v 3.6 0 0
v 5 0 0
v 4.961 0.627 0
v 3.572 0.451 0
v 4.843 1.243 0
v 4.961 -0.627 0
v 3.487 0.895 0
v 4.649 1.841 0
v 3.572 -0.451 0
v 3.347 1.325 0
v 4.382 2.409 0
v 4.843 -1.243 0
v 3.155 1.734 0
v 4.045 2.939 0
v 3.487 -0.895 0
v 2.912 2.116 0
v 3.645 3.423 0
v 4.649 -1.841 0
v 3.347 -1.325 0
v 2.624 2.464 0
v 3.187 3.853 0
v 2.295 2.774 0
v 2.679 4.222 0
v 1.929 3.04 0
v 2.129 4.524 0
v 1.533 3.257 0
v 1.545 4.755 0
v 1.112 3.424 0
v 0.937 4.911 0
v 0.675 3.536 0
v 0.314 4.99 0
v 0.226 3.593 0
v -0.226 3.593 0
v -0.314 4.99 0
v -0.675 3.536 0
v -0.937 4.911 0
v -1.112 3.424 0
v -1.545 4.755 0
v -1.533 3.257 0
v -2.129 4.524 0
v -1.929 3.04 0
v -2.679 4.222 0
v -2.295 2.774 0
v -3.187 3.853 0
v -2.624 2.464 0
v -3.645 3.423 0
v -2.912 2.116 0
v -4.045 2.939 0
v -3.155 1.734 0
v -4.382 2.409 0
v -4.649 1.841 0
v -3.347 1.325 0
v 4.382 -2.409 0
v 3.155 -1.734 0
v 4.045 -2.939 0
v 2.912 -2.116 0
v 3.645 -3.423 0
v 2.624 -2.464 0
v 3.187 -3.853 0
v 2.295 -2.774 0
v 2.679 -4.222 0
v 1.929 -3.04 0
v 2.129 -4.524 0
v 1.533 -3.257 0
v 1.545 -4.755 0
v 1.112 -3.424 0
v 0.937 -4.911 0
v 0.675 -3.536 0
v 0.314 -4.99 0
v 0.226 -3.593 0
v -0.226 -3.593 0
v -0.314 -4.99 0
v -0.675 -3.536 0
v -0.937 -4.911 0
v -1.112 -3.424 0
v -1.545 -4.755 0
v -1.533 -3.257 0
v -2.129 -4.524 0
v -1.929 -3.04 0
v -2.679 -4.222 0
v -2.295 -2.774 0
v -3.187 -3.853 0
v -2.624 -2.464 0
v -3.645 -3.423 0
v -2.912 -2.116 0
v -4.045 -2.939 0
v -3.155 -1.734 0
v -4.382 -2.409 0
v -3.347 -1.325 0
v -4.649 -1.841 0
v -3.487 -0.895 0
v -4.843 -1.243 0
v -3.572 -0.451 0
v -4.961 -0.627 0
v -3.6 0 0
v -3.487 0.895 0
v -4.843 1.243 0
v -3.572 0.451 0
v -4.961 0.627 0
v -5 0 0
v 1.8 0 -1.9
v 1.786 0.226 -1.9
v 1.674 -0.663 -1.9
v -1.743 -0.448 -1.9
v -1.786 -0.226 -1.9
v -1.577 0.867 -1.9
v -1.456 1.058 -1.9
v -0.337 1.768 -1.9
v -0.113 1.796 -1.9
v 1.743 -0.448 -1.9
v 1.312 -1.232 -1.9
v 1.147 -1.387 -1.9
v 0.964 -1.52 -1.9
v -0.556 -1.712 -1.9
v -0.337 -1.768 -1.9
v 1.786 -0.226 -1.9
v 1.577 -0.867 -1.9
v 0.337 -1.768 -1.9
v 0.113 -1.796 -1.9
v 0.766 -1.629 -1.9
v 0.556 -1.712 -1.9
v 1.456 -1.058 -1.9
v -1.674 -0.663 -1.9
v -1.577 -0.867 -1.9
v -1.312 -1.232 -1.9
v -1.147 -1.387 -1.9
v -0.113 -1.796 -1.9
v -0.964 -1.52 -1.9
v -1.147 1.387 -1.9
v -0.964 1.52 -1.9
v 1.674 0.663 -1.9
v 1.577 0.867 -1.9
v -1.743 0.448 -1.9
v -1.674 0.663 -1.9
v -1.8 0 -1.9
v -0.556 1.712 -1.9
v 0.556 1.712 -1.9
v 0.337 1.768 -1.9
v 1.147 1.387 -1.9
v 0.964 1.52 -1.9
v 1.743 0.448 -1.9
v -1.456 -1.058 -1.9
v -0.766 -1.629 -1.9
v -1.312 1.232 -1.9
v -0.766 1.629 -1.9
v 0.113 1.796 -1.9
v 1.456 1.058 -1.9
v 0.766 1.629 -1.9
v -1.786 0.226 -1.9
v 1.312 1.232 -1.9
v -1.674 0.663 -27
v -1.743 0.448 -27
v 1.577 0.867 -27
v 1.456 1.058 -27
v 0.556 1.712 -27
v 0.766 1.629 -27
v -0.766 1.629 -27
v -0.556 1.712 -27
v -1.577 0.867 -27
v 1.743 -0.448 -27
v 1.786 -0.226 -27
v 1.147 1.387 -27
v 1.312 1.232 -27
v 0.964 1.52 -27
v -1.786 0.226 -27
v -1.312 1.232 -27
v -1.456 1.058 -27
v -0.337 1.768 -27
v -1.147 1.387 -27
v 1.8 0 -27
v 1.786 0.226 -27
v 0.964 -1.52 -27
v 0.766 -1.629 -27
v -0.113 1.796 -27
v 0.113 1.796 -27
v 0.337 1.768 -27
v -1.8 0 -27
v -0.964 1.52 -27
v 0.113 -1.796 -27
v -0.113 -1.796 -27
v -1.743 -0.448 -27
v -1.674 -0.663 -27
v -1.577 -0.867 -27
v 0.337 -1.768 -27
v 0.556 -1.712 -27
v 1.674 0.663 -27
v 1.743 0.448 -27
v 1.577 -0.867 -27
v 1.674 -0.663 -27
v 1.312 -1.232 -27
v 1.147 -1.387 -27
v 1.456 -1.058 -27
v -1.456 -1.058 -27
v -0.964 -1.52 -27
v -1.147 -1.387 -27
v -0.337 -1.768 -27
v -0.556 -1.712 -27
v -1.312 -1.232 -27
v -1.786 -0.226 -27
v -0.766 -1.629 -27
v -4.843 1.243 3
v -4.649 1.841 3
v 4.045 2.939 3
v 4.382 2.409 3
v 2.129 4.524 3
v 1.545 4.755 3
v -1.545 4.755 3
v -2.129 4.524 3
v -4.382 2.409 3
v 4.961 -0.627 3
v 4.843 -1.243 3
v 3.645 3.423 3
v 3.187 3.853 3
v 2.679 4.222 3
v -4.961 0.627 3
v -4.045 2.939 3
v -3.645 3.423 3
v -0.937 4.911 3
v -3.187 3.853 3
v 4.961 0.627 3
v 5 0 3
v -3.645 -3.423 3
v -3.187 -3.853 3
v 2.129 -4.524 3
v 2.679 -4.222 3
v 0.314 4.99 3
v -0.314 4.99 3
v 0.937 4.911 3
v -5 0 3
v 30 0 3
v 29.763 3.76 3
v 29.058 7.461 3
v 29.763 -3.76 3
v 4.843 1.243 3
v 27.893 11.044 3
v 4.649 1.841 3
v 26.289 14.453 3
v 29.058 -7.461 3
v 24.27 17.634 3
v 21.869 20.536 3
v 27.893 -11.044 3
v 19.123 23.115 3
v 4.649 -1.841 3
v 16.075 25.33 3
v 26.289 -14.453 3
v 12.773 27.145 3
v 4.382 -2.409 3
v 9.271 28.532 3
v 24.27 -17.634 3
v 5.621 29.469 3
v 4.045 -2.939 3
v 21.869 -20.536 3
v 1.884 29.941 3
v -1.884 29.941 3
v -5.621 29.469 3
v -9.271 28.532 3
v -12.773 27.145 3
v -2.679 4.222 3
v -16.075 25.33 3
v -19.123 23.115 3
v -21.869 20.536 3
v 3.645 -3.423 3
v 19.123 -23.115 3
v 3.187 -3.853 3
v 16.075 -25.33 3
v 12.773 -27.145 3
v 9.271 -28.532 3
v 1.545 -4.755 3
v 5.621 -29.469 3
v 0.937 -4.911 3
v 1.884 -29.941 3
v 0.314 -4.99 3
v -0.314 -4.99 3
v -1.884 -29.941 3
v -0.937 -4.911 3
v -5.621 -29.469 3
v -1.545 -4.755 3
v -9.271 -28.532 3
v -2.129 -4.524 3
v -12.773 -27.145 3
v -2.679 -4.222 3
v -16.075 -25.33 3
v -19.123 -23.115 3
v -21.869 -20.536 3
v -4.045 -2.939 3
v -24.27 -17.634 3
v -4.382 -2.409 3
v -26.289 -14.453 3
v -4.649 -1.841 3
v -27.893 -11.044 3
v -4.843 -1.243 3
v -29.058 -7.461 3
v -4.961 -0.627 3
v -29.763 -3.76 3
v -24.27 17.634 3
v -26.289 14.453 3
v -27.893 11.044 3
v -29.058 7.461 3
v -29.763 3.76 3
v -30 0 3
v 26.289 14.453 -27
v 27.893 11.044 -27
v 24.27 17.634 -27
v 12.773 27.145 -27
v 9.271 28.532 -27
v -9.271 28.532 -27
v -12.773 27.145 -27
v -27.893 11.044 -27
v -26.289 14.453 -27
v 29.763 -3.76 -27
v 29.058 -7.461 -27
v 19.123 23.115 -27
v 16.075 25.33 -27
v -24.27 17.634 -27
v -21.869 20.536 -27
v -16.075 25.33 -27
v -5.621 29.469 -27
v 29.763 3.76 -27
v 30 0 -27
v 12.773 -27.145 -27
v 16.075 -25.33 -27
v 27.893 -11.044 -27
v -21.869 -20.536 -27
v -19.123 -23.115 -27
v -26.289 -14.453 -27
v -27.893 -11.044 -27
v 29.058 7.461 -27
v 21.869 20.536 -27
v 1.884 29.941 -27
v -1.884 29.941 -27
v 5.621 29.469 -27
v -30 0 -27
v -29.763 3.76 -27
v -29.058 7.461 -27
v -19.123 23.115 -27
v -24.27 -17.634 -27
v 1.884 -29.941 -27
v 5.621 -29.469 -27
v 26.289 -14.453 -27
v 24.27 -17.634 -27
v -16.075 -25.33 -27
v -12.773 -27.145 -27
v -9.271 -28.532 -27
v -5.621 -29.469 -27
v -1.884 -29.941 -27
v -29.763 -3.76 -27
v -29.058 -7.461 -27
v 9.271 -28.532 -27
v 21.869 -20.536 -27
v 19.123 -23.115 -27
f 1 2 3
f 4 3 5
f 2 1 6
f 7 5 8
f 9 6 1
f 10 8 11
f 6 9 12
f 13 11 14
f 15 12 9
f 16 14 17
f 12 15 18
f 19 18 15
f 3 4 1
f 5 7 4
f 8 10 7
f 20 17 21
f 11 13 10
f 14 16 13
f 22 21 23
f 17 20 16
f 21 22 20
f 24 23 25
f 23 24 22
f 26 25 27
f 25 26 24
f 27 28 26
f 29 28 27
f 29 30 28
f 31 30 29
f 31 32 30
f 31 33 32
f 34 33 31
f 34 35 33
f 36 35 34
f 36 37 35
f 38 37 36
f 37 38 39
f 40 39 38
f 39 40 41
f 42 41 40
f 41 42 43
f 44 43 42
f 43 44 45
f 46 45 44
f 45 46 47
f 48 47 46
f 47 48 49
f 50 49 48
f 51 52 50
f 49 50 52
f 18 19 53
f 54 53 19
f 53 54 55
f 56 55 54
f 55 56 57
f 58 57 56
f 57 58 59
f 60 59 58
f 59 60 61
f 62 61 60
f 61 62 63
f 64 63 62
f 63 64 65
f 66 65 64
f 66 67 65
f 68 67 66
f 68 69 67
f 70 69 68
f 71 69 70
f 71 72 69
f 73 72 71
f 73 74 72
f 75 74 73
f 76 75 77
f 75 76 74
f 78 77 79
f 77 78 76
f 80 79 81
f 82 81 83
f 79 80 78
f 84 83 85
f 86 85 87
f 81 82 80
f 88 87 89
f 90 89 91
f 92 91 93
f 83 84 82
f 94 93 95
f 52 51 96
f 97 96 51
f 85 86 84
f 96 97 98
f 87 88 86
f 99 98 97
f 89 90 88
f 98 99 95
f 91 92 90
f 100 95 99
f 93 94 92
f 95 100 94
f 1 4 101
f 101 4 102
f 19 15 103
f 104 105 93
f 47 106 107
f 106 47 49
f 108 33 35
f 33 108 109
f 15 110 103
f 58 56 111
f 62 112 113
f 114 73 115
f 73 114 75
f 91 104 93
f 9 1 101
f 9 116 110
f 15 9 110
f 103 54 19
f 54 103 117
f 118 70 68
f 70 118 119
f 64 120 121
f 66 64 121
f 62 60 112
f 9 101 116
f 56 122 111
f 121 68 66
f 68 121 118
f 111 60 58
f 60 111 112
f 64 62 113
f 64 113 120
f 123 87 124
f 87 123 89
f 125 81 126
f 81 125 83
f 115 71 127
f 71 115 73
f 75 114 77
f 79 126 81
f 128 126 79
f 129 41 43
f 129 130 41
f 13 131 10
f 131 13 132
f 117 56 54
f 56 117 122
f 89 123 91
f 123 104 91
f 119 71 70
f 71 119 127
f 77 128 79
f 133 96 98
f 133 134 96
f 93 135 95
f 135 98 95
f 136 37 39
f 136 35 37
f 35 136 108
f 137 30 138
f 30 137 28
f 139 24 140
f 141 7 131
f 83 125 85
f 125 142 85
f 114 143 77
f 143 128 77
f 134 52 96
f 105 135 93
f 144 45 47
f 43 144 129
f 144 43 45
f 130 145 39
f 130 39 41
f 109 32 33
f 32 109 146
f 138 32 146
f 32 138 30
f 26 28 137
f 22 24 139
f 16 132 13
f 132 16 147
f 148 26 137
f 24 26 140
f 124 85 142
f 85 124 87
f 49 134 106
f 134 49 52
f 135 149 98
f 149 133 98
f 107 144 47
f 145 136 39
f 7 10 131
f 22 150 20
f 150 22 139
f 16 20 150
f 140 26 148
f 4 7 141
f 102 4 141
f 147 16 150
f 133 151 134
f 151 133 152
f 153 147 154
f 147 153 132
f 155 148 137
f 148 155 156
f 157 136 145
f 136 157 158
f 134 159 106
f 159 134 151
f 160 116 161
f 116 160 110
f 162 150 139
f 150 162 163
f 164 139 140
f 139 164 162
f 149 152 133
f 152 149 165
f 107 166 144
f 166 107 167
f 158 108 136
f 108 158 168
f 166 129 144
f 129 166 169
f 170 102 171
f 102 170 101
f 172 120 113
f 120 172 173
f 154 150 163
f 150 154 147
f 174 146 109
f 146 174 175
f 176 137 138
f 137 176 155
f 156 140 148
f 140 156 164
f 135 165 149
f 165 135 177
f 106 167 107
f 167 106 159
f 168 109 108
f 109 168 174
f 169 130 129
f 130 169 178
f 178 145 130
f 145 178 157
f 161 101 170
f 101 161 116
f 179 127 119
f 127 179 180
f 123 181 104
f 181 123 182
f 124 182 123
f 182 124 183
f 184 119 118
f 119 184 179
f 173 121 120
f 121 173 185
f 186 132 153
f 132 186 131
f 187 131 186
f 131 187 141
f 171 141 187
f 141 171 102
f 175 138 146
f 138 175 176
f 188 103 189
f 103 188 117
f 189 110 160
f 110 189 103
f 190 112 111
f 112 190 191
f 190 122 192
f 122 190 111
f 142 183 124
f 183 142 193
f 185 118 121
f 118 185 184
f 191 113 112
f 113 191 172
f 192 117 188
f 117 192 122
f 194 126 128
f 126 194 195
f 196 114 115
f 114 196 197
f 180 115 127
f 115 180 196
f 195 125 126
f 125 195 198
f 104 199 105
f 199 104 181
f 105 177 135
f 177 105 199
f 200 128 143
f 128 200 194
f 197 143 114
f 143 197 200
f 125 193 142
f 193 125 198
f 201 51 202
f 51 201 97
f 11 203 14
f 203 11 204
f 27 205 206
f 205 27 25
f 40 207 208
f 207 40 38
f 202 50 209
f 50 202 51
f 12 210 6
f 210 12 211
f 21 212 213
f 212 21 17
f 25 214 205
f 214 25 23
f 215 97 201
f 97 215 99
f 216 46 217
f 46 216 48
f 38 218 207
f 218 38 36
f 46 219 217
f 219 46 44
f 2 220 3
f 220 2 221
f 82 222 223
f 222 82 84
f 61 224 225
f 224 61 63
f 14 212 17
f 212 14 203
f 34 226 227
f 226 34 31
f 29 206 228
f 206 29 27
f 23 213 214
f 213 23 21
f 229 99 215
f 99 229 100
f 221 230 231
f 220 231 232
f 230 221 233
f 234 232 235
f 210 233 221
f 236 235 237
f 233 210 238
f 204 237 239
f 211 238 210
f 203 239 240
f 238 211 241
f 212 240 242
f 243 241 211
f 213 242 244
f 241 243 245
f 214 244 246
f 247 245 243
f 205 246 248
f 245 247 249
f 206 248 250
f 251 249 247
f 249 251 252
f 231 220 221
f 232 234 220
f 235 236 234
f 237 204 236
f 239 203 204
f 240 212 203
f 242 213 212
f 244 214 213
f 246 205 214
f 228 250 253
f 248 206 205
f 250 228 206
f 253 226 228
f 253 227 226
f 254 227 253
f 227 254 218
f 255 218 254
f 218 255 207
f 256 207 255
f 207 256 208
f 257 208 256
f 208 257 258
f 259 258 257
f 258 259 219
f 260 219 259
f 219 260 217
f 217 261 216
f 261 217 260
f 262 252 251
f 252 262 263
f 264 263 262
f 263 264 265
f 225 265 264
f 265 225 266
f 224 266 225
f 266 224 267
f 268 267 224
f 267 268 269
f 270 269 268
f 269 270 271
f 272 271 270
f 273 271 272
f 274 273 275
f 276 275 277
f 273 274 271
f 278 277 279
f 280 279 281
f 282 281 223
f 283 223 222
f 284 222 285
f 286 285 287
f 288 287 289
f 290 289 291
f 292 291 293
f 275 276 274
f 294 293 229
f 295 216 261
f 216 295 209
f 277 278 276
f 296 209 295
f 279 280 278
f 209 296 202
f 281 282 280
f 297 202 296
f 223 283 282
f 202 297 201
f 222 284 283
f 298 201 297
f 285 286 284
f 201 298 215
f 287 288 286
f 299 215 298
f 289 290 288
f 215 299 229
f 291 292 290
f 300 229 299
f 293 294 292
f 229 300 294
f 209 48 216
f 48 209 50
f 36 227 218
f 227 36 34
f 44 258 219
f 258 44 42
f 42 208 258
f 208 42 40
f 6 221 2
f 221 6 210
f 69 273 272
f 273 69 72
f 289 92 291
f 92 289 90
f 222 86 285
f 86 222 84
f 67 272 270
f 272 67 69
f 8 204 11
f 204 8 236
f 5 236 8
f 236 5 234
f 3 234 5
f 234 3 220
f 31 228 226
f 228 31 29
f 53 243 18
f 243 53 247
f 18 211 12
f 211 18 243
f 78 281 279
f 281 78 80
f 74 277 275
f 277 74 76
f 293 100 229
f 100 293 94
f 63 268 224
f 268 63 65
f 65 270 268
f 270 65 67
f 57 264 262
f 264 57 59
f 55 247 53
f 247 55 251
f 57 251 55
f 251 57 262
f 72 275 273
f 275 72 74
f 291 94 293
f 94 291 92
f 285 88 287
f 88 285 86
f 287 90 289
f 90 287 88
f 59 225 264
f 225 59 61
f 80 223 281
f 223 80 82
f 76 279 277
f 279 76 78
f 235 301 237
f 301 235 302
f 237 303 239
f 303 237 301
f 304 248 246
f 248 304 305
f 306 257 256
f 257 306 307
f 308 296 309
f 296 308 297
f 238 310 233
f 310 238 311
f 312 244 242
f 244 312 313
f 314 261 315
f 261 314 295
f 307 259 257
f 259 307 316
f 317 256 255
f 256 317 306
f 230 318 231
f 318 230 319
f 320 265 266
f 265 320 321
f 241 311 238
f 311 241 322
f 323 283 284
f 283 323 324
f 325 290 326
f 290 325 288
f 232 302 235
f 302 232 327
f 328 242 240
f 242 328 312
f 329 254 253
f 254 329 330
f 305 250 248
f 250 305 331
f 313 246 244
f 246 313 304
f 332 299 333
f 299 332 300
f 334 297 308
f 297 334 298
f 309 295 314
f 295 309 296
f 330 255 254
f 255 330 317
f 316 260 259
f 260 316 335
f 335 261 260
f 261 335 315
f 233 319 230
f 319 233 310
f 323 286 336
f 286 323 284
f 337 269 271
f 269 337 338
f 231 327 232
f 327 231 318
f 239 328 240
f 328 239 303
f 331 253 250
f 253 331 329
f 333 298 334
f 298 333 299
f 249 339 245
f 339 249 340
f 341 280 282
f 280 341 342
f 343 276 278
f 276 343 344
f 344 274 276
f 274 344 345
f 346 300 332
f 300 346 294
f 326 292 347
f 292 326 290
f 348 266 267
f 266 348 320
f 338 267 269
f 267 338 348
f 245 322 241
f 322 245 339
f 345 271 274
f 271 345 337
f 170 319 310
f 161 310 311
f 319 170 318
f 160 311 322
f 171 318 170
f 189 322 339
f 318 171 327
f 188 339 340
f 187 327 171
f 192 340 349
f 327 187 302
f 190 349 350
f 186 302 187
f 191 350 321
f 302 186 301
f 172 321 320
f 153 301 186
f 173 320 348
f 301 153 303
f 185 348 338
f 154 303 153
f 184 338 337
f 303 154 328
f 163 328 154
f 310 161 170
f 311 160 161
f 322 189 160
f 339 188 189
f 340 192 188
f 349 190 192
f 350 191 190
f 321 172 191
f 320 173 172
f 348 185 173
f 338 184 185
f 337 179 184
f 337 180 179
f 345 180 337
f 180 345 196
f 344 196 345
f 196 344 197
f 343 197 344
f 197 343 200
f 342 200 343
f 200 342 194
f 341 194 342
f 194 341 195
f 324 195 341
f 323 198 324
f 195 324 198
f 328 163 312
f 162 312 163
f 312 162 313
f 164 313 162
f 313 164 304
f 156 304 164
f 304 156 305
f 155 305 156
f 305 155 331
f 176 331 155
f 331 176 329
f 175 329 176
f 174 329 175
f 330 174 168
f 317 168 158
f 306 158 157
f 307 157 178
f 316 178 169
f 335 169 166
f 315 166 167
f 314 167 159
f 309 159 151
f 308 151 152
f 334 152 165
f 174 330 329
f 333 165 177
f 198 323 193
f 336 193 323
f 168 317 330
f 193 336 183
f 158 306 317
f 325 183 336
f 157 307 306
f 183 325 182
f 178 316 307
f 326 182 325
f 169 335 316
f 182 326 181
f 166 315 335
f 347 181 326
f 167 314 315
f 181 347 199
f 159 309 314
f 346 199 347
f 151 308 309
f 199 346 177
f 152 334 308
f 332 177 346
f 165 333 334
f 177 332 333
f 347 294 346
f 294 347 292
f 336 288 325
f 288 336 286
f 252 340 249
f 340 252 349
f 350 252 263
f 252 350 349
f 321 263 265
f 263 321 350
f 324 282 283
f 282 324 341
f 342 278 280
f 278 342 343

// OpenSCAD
$fn = 50;

difference() {
	union() {
		translate(v = [0, 0, -27.0]) {
			cylinder(h = 30, r = 30.0);
		}
	}
	union() {
		translate(v = [0, 0, 0]) {
			rotate(a = [0, 0, 0]) {
				difference() {
					union() {
						translate(v = [0, 0, -30.0]) {
							cylinder(h = 30, r = 1.5);
						}
						translate(v = [0, 0, -1.9]) {
							cylinder(h = 1.9, r1 = 1.8, r2 = 3.6);
						}
						translate(v = [0, 0, -30.0]) {
							cylinder(h = 30, r = 1.8);
						}
						translate(v = [0, 0, -30.0]) {
							cylinder(h = 30, r = 1.5);
						}
					}
					union();
				}
			}
		}
		#cylinder(h = 3, r = 5.0);
	}
}
